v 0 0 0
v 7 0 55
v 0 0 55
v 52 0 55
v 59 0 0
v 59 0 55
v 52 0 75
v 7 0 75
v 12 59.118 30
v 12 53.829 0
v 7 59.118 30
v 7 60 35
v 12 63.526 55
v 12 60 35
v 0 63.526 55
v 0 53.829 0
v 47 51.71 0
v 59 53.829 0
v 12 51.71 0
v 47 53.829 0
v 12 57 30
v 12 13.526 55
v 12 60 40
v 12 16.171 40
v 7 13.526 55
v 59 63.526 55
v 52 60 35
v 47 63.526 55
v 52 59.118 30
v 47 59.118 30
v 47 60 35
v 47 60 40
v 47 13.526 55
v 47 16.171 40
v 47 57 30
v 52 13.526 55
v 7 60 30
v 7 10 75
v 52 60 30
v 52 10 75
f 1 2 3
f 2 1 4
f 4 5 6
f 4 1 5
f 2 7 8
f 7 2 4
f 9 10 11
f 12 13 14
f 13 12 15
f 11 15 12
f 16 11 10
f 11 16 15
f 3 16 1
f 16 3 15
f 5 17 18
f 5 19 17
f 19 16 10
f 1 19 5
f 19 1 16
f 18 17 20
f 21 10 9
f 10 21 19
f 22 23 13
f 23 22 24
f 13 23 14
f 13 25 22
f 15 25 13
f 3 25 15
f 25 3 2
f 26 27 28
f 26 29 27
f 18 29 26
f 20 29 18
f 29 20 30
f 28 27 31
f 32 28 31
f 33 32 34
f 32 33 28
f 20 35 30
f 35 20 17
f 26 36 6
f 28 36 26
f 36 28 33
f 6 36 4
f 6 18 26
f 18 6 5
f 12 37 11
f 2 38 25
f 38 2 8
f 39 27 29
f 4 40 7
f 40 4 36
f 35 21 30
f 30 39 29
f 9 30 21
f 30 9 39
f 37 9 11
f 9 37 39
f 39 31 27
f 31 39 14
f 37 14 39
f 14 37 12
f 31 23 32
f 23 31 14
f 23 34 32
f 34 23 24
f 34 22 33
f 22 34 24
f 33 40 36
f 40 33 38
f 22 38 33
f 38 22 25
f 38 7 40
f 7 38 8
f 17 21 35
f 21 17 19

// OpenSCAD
width=45;
height=75;
depth=60;
back_top=10;
top_angle=80;
seat_elevation=40;
seat_height=10;
seat_overhang=3;
bottom_angle=80;
wall_thickness=1.5;
armrest_bool=true;
armrest_height=55;
armrest_width=12;
armrest_overlap=5;

module solid_chair(
    w=width,
    h=height,
    d=depth,
    bt=back_top,
    ta=top_angle,
    se=seat_elevation,
    sh=seat_height,
    so=seat_overhang,
    ba=bottom_angle,
    wt=wall_thickness,
    ab=armrest_bool,
    ah=armrest_height,
    aw=armrest_width,
    ao=armrest_overlap
){
    module armrest() {
        linear_extrude(aw)
            polygon([
                [0,0],
                [d-tan(90-ba)*(se-sh/2),0],
                [d+tan(90-ba)*(ah-(se-sh/2)),ah],
                [0,ah]]);
    }

    module body() {
        linear_extrude(height=w,convexity=10)
                polygon([
                    [0,0],
                    [d-so-tan(90-ba)*(se-sh),0],
                    [d-so,se-sh],
                    [d,se-sh],
                    [d,se],
                    [bt+tan(90-ta)*(h-se),se],
                    [bt,h],
                    [0,h]
                ]);
    }

    translation=ab?aw-ao:0;

    translate([translation, 0,0])
    rotate([90,0,90])
        union(){
            body();
            if (ab) {
                translate([0,0,ao-aw])
                    armrest();
                translate([0,0,w-ao])
                    armrest();
            }
        }
}



solid_chair();
